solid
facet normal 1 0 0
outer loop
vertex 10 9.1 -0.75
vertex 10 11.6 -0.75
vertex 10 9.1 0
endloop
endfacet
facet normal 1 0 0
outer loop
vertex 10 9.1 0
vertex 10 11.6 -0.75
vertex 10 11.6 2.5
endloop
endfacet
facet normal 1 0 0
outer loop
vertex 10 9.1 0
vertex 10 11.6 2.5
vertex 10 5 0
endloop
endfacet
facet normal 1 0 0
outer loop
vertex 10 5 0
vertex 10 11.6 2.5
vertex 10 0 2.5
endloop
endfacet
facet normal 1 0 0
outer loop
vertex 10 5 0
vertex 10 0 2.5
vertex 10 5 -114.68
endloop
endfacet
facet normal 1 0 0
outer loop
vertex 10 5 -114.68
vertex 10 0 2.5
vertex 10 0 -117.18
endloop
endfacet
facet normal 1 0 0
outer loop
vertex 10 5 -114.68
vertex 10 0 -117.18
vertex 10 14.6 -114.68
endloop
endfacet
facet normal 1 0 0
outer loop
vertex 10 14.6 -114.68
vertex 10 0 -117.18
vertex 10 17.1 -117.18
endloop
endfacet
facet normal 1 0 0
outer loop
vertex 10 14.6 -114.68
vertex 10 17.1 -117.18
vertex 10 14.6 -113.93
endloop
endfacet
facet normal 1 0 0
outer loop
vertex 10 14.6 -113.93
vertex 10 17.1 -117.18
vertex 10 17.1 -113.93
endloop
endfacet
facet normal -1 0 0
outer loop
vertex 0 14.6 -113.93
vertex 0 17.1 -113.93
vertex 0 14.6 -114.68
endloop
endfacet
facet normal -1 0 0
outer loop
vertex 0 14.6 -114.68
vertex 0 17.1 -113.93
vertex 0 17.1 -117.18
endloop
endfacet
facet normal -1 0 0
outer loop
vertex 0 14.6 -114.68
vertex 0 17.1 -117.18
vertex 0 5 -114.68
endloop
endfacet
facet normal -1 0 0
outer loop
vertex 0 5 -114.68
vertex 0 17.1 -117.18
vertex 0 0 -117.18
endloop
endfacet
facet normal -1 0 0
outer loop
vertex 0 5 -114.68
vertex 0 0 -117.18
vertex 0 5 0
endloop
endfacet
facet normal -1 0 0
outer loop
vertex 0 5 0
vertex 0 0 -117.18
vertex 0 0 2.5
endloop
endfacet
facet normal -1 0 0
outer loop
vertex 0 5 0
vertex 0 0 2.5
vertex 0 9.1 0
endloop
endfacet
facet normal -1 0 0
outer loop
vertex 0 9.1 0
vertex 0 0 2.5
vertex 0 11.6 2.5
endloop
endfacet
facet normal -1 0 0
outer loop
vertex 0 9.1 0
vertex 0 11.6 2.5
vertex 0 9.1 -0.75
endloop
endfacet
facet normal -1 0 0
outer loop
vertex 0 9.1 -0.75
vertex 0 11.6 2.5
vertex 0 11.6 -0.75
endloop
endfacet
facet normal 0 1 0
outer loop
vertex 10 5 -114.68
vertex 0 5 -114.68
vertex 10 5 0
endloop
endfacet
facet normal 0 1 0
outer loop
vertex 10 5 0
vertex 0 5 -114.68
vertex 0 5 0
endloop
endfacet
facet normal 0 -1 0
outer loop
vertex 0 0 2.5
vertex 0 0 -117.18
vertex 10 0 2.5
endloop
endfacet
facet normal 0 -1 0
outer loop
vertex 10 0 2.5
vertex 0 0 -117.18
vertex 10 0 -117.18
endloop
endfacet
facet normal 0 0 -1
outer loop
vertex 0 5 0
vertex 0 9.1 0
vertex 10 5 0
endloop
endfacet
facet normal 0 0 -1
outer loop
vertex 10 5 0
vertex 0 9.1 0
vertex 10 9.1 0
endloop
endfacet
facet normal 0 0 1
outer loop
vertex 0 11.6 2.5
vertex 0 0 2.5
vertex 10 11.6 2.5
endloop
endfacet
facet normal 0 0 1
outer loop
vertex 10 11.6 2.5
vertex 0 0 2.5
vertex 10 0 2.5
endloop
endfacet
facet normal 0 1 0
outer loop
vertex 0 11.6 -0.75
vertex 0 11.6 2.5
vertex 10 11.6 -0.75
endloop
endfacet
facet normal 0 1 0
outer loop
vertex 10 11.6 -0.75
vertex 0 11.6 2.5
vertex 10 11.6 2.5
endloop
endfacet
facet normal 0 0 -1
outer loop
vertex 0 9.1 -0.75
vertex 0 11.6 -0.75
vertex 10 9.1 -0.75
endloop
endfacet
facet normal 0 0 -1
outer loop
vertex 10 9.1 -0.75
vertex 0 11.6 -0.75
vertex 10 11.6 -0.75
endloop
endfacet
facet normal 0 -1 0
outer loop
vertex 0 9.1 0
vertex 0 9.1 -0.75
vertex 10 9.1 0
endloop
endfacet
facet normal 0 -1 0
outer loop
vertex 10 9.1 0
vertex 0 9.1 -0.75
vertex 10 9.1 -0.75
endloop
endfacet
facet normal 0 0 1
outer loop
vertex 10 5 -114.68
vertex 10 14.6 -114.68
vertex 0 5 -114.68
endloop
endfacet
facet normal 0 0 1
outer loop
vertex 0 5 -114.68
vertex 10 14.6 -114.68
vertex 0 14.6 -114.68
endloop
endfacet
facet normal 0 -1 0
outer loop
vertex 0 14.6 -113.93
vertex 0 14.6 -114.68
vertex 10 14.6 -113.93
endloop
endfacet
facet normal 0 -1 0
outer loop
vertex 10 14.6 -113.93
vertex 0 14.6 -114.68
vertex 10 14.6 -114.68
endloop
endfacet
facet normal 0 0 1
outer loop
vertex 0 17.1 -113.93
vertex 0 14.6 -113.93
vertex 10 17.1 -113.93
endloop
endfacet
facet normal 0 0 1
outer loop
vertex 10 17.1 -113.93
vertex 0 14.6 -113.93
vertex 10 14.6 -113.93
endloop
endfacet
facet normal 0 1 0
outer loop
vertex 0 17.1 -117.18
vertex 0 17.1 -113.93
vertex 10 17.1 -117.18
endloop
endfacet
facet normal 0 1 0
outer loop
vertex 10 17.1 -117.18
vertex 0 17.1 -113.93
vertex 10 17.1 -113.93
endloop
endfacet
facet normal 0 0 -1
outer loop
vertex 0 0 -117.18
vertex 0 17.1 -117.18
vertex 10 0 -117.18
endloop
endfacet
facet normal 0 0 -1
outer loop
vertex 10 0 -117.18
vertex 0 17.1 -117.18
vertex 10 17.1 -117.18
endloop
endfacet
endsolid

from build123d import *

# Parameters (mm, degrees)
SKETCH1_W           = 10
SKETCH1_H           = 114.68
BOSS_EXTRUDE1_DEPTH = 5
BOSS_EXTRUDE2_DEPTH = 10


with BuildPart() as part:
    # Sketch1 → Boss-Extrude1 (new body)
    with BuildSketch(Plane(origin=(0, 0, 0), x_dir=(1, 0, 0), z_dir=(0, 1, 0))):
        with Locations((5, 57.34)):
            Rectangle(SKETCH1_W, SKETCH1_H)
    extrude(amount=BOSS_EXTRUDE1_DEPTH)

    # Sketch3 → Boss-Extrude2 (add, through all)
    with BuildSketch(Plane(origin=(10, 0, 0), x_dir=(0, 0, -1), z_dir=(1, 0, 0))):
        Polygon((0.75, 9.1), (0, 9.1), (0, 0), (-2.5, 0), (-2.5, 9.1), (-2.5, 11.6), (0.75, 11.6), align=None)
        Polygon((114.68, 0), (117.18, 0), (117.18, 14.6), (117.18, 17.1), (113.93, 17.1), (113.93, 14.6), (114.68, 14.6), align=None)
    extrude(amount=-BOSS_EXTRUDE2_DEPTH)


solid = part.part
